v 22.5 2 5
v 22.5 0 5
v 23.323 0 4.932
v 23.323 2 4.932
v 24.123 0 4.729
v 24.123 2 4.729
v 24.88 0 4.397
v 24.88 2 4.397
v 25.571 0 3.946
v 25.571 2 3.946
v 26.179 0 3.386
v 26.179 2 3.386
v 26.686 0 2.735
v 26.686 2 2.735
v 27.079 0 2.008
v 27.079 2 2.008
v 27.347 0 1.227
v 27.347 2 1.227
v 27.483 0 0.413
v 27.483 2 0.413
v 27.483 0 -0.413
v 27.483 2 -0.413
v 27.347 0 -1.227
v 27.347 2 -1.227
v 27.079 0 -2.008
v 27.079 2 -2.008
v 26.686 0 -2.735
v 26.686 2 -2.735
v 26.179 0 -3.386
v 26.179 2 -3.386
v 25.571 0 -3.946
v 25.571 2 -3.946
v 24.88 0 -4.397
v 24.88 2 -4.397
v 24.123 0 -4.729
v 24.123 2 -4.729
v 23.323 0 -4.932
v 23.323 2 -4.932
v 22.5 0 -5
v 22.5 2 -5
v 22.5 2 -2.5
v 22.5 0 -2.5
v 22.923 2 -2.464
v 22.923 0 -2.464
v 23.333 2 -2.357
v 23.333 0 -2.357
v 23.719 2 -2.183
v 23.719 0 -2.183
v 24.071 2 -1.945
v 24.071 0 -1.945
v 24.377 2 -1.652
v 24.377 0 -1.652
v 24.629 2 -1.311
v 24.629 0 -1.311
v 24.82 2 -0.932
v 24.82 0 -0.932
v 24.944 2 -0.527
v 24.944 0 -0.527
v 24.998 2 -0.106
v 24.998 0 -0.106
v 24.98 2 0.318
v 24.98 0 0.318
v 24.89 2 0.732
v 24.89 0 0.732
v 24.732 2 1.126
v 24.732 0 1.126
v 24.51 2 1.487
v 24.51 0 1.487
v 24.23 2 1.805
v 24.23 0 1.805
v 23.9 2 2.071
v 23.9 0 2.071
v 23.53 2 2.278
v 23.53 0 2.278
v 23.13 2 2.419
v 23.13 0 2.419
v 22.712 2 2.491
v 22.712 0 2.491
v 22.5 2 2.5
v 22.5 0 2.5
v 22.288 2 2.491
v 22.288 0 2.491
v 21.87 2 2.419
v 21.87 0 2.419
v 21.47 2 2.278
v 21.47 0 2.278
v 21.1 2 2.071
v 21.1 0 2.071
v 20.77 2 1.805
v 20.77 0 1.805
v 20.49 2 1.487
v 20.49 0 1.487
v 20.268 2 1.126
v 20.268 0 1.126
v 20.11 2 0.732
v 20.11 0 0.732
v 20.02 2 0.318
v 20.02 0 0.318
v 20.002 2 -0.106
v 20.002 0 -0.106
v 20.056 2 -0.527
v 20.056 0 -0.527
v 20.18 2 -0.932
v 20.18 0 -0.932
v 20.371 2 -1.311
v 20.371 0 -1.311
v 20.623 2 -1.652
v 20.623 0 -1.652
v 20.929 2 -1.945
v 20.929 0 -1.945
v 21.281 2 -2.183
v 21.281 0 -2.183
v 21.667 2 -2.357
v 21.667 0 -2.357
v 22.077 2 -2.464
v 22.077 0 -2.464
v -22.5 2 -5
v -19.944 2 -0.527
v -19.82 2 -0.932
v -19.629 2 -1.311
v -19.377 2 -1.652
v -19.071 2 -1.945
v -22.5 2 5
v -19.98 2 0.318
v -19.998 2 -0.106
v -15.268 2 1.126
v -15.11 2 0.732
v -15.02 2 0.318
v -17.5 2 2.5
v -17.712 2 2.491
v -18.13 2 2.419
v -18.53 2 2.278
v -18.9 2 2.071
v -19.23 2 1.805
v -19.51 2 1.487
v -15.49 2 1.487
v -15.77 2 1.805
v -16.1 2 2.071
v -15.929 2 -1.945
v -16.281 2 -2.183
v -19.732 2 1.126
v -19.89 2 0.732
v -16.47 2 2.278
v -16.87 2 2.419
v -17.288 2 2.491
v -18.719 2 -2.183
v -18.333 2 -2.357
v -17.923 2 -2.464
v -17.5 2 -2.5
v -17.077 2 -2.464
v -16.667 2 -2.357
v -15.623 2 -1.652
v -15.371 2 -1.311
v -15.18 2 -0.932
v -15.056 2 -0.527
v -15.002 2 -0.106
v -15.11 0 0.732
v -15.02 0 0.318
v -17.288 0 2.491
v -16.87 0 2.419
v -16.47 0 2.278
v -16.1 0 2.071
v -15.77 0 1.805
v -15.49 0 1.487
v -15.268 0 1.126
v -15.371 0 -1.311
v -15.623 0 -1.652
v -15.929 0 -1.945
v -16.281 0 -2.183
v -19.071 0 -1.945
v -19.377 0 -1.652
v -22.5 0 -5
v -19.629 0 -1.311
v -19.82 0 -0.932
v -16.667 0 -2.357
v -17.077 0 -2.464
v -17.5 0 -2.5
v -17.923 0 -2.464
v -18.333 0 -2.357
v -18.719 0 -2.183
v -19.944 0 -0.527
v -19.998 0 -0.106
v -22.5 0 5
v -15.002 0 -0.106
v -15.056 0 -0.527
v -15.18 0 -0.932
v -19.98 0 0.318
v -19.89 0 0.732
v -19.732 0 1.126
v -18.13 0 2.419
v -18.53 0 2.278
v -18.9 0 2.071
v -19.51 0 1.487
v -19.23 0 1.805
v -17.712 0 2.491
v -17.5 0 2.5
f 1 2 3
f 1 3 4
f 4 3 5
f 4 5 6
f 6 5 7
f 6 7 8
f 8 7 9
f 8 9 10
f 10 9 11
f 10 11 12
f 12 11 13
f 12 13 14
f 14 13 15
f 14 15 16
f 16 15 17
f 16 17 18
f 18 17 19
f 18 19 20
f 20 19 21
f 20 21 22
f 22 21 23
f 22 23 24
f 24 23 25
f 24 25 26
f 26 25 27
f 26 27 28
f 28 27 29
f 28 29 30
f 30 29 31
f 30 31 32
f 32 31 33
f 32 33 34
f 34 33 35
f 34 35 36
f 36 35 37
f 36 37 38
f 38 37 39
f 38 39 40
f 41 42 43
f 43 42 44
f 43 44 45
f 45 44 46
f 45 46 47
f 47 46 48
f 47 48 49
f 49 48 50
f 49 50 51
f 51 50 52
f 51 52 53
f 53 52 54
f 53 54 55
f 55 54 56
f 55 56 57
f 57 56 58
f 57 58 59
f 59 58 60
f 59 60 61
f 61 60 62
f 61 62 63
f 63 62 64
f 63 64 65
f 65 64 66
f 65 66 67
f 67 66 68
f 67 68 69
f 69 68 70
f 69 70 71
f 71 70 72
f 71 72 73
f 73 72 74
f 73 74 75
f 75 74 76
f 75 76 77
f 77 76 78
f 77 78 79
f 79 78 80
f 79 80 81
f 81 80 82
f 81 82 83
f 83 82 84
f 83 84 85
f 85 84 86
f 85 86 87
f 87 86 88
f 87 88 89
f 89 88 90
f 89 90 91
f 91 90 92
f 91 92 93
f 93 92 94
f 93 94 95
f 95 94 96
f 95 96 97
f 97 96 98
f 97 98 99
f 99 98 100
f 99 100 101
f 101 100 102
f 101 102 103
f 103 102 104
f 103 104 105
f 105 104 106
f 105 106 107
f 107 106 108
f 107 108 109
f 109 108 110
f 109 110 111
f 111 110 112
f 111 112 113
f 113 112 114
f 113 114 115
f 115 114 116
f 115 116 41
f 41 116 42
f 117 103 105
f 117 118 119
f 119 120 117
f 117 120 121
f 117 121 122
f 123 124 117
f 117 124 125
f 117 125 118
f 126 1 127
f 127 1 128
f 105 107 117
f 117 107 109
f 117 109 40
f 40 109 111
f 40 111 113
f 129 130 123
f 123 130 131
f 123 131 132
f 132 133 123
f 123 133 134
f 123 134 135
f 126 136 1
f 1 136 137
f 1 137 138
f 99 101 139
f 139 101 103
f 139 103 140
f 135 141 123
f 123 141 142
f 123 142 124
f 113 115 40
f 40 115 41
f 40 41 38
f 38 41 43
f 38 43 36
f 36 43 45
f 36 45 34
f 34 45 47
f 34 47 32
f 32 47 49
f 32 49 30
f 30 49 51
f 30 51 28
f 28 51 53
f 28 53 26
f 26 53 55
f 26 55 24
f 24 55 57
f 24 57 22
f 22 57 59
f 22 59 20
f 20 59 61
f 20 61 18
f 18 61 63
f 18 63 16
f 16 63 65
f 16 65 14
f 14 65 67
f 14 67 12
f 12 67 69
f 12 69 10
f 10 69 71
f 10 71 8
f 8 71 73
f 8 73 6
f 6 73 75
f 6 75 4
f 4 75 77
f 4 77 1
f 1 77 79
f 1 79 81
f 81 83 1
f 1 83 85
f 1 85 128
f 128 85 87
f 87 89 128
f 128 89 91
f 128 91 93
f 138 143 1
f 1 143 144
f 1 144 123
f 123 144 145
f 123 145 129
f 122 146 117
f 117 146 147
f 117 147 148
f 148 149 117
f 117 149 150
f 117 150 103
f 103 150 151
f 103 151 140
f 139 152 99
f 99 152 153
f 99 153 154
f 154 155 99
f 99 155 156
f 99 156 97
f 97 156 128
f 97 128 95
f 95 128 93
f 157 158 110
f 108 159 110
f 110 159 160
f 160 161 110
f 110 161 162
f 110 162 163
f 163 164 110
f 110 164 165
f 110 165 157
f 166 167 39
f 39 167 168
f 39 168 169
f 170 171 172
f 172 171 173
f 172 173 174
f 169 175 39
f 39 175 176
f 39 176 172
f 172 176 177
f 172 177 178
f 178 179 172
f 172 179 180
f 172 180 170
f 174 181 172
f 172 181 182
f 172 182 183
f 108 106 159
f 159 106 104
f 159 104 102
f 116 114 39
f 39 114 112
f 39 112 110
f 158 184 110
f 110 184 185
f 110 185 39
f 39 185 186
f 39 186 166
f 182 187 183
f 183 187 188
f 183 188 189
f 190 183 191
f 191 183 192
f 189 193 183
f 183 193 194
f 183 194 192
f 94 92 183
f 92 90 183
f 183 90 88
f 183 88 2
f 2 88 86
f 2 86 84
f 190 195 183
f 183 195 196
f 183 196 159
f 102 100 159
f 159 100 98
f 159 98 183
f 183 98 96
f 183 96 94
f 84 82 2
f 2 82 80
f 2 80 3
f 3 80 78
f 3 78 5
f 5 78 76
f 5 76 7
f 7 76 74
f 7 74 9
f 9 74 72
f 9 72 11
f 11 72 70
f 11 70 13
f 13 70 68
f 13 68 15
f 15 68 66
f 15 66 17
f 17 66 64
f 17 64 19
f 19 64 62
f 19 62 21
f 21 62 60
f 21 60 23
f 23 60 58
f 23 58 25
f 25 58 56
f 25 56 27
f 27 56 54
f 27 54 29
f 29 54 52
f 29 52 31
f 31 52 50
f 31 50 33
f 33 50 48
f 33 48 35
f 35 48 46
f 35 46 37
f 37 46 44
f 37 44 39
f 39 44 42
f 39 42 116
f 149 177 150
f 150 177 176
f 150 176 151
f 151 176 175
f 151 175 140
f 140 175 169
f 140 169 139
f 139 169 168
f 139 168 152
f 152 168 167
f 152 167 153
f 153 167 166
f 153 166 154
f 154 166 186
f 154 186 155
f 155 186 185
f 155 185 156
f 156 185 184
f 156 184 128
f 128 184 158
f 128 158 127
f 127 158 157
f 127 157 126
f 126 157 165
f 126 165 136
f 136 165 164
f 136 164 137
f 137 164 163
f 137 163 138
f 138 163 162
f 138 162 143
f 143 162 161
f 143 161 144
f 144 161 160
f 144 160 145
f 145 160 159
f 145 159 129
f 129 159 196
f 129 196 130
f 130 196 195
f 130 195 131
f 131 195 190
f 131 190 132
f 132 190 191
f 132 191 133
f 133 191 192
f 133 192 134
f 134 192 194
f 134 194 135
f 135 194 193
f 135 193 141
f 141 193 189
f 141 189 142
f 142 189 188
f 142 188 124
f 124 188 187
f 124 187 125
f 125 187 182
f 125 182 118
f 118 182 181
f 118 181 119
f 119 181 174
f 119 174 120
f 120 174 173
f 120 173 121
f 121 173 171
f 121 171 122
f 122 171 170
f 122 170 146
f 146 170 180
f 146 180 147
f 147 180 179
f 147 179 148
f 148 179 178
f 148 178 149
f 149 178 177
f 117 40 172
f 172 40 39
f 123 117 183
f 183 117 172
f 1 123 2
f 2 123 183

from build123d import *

# Parameters (mm, degrees)
SALIENTE_EXTRUIR2_DEPTH   = 2
SALIENTE_EXTRUIR2_2_DEPTH = 2
SALIENTE_EXTRUIR5_DEPTH   = 2


with BuildPart() as part:
    # Croquis1 → Saliente-Extruir2 (new body)
    with BuildSketch(Plane(origin=(0, 0, 0), x_dir=(1, 0, 0), z_dir=(0, 1, 0))):
        with BuildLine():
            Line((25, 0), (27.5, 0))
            ThreePointArc((27.5, 0), (22.5, 5), (17.5, 0))
            Line((17.5, 0), (20, 0))
            ThreePointArc((20, 0), (22.5, 2.5), (25, 0))
        make_face()
    extrude(amount=SALIENTE_EXTRUIR2_DEPTH)



with BuildPart() as body_2:
    # Croquis1 → Saliente-Extruir2 2 (new body)
    with BuildSketch(Plane(origin=(0, 0, 0), x_dir=(1, 0, 0), z_dir=(0, 1, 0))):
        with BuildLine():
            Line((-22.5, -5), (22.5, -5))
            ThreePointArc((22.5, -5), (18.964466094, -3.535533906), (17.5, 0))
            Line((17.5, 0), (-15, 0))
            ThreePointArc((-15, 0), (-17.5, -2.5), (-20, 0))
            Line((-20, 0), (-22.5, 0))
            Line((-22.5, 0), (-22.5, -5))
        make_face()
    extrude(amount=SALIENTE_EXTRUIR2_2_DEPTH)


with BuildPart() as part_1:
    add(part.part)

    add(body_2.part)  # Saliente-Extruir5 merges body 2
    # Croquis1<4> → Saliente-Extruir5 (add)
    with BuildSketch(Plane(origin=(0, 0, 0), x_dir=(1, 0, 0), z_dir=(0, 1, 0))):
        with BuildLine():
            Line((27.5, 0), (25, 0))
            ThreePointArc((25, 0), (22.5, -2.5), (20, 0))
            Line((20, 0), (17.5, 0))
            ThreePointArc((17.5, 0), (22.5, -5), (27.5, 0))
        make_face()
        with BuildLine():
            ThreePointArc((17.5, 0), (18.964466094, 3.535533906), (22.5, 5))
            Line((22.5, 5), (-22.5, 5))
            Line((-22.5, 5), (-22.5, 0))
            Line((-22.5, 0), (-20, 0))
            ThreePointArc((-20, 0), (-17.5, 2.5), (-15, 0))
            Line((-15, 0), (17.5, 0))
        make_face()
    extrude(amount=SALIENTE_EXTRUIR5_DEPTH)


solid = part_1.part
